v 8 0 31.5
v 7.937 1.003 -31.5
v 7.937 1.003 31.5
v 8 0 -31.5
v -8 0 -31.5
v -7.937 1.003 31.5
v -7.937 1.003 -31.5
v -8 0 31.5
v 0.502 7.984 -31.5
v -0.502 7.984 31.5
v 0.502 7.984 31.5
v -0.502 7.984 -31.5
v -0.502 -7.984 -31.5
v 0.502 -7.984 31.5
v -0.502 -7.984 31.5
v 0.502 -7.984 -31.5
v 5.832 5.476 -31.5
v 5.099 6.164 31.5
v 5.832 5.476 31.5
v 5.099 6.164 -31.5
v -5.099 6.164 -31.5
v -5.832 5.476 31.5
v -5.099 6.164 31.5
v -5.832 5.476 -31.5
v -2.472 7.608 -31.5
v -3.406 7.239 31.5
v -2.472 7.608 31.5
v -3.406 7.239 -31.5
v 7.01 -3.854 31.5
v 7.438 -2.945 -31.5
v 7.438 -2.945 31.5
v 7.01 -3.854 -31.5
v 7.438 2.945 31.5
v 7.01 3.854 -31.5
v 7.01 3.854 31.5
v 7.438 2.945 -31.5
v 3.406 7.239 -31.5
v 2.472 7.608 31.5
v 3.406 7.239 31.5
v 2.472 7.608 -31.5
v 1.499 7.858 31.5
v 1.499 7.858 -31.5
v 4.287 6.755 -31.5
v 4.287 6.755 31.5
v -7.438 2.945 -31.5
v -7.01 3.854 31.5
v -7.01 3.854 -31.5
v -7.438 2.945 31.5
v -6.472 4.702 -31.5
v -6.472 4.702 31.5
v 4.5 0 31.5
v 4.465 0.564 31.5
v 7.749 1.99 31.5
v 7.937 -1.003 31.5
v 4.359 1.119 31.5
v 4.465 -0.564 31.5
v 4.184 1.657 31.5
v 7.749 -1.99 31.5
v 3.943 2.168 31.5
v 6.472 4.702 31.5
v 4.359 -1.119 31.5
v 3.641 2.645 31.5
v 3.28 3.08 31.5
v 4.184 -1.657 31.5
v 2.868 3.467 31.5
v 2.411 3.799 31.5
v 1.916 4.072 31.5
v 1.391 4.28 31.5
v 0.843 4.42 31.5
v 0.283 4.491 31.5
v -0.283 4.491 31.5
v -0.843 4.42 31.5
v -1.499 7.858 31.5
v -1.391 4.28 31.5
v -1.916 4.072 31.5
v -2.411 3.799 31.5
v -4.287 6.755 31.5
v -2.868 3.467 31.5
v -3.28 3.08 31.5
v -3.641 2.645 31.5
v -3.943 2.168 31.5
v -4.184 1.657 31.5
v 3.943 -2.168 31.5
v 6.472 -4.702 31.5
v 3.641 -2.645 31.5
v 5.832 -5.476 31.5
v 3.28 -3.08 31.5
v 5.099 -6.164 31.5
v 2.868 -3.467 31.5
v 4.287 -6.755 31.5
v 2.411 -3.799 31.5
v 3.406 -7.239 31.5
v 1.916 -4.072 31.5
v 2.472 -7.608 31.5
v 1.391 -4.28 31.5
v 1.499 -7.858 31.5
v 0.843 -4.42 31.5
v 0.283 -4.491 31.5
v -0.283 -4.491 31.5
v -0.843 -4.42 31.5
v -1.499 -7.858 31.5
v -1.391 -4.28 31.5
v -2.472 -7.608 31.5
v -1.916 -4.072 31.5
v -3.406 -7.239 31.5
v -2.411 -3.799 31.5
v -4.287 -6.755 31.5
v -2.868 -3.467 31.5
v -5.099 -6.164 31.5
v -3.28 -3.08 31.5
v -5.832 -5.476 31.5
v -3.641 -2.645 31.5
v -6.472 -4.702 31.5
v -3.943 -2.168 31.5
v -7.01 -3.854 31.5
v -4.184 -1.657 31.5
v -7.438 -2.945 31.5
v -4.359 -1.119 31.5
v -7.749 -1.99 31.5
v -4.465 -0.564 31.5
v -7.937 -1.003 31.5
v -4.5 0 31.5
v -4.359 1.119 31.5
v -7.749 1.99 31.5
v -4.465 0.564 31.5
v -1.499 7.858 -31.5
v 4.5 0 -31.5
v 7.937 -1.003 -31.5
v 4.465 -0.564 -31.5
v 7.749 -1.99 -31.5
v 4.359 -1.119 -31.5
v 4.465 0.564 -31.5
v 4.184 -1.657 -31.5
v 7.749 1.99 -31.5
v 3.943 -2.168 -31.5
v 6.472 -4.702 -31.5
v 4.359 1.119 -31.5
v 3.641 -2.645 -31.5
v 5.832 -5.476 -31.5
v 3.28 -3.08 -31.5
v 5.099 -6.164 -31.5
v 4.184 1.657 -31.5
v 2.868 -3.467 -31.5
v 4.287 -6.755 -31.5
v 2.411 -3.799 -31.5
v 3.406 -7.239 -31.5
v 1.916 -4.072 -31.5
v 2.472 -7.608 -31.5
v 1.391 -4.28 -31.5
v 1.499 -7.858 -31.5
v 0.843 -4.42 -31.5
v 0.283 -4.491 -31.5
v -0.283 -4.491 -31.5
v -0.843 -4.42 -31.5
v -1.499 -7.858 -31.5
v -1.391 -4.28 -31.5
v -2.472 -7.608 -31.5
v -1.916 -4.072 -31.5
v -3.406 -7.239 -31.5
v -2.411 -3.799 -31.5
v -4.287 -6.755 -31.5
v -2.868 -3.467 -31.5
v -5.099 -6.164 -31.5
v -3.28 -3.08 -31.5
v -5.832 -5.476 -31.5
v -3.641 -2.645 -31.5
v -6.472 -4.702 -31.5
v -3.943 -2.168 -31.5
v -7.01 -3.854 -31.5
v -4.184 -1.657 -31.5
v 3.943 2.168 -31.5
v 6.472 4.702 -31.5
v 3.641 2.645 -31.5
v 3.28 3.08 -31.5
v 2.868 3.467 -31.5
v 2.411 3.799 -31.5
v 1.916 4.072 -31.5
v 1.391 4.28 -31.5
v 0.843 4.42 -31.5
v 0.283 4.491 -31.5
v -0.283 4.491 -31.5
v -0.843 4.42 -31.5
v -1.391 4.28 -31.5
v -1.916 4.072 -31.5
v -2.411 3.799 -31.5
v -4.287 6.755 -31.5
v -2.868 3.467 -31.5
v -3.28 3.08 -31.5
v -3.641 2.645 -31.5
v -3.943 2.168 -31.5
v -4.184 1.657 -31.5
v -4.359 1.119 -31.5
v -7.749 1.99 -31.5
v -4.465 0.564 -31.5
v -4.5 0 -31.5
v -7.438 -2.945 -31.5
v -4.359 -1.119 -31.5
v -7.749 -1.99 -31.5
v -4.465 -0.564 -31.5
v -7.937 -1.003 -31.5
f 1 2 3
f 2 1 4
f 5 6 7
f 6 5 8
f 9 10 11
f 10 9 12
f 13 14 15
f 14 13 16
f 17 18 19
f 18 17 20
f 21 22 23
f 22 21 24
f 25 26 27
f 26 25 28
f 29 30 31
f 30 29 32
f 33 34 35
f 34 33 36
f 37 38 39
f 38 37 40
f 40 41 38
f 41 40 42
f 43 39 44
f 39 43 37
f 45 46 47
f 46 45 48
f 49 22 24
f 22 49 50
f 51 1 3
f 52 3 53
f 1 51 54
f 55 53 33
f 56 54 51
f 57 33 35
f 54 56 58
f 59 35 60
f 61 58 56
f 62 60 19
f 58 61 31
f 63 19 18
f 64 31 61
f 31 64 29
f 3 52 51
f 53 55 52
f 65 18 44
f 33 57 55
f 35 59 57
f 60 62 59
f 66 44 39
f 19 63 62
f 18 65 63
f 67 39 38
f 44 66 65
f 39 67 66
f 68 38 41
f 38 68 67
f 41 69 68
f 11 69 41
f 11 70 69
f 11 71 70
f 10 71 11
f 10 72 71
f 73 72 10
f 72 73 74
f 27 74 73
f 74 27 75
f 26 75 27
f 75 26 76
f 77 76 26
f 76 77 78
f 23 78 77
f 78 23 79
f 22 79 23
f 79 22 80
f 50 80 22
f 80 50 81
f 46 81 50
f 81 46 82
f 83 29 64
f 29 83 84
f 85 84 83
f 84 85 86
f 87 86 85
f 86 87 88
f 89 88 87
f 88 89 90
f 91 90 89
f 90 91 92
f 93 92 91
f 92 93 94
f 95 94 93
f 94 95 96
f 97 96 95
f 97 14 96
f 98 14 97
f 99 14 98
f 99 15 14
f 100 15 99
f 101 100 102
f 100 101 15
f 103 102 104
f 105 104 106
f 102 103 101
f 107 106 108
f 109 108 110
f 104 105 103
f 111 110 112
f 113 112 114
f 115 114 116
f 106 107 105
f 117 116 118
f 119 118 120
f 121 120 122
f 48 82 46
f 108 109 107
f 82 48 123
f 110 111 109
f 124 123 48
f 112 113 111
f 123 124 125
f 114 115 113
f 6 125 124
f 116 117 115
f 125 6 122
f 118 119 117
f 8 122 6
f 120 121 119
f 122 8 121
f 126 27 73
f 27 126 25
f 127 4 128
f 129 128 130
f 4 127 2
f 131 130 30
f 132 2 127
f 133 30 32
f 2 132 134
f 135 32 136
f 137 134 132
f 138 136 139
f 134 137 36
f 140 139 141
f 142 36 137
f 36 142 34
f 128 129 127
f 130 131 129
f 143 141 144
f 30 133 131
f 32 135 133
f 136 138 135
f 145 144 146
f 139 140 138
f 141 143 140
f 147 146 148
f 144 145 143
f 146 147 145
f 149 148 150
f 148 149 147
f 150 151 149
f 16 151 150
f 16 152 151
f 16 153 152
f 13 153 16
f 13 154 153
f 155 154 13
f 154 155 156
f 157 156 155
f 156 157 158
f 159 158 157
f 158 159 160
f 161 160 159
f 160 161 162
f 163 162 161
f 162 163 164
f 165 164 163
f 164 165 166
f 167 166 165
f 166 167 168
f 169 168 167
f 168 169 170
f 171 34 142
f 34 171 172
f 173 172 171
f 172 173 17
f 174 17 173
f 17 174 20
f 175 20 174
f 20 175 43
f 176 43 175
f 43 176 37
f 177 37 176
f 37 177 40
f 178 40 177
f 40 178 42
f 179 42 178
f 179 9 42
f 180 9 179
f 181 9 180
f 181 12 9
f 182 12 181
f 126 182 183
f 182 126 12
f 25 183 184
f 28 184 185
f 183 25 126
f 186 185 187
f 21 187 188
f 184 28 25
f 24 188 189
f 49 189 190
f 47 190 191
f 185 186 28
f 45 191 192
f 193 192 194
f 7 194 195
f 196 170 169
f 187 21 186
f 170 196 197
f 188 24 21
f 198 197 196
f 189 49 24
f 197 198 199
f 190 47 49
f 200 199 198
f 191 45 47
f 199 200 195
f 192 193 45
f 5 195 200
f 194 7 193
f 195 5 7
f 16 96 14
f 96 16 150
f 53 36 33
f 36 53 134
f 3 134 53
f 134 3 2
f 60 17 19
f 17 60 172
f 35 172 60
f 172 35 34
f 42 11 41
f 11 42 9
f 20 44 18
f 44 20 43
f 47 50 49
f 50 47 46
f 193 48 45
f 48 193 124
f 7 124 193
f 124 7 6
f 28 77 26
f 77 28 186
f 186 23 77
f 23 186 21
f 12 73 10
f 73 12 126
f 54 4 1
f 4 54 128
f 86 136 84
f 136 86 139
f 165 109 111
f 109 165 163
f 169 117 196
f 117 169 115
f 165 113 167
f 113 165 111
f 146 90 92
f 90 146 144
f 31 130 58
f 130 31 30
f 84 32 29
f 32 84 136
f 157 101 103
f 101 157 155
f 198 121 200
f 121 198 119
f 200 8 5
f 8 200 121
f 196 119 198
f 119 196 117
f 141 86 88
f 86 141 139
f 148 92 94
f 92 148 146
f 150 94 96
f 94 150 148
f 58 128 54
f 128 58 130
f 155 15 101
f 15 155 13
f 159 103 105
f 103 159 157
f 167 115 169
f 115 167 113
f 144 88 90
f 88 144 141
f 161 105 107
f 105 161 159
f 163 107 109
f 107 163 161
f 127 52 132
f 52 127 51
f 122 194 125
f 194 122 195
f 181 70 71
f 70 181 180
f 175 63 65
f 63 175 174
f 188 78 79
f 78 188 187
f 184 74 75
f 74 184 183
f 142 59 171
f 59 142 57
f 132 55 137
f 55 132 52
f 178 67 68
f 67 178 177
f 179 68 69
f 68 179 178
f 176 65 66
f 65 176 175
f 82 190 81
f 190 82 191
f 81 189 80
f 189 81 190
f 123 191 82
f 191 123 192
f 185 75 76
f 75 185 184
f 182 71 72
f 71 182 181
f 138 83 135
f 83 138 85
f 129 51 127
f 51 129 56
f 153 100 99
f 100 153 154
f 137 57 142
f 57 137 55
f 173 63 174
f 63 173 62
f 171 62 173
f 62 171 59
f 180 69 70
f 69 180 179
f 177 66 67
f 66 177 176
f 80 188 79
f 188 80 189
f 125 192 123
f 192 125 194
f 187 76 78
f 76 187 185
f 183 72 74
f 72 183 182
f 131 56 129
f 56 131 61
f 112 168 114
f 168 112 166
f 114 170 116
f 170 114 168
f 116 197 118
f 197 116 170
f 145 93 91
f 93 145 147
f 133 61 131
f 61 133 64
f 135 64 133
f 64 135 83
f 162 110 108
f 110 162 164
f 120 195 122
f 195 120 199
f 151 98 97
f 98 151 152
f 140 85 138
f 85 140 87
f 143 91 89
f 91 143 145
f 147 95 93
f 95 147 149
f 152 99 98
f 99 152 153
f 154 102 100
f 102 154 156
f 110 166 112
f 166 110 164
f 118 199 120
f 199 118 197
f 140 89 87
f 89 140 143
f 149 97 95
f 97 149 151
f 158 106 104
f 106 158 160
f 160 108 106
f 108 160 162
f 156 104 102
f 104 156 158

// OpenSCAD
$fn = 50;


difference() {
	union() {
		translate(v = [0, 0, -31.5000000000]) {
			cylinder(h = 63, r = 8.0000000000);
		}
	}
	union() {
		translate(v = [0, 0, -100.0000000000]) {
			cylinder(h = 200, r = 4.5000000000);
		}
	}
}
